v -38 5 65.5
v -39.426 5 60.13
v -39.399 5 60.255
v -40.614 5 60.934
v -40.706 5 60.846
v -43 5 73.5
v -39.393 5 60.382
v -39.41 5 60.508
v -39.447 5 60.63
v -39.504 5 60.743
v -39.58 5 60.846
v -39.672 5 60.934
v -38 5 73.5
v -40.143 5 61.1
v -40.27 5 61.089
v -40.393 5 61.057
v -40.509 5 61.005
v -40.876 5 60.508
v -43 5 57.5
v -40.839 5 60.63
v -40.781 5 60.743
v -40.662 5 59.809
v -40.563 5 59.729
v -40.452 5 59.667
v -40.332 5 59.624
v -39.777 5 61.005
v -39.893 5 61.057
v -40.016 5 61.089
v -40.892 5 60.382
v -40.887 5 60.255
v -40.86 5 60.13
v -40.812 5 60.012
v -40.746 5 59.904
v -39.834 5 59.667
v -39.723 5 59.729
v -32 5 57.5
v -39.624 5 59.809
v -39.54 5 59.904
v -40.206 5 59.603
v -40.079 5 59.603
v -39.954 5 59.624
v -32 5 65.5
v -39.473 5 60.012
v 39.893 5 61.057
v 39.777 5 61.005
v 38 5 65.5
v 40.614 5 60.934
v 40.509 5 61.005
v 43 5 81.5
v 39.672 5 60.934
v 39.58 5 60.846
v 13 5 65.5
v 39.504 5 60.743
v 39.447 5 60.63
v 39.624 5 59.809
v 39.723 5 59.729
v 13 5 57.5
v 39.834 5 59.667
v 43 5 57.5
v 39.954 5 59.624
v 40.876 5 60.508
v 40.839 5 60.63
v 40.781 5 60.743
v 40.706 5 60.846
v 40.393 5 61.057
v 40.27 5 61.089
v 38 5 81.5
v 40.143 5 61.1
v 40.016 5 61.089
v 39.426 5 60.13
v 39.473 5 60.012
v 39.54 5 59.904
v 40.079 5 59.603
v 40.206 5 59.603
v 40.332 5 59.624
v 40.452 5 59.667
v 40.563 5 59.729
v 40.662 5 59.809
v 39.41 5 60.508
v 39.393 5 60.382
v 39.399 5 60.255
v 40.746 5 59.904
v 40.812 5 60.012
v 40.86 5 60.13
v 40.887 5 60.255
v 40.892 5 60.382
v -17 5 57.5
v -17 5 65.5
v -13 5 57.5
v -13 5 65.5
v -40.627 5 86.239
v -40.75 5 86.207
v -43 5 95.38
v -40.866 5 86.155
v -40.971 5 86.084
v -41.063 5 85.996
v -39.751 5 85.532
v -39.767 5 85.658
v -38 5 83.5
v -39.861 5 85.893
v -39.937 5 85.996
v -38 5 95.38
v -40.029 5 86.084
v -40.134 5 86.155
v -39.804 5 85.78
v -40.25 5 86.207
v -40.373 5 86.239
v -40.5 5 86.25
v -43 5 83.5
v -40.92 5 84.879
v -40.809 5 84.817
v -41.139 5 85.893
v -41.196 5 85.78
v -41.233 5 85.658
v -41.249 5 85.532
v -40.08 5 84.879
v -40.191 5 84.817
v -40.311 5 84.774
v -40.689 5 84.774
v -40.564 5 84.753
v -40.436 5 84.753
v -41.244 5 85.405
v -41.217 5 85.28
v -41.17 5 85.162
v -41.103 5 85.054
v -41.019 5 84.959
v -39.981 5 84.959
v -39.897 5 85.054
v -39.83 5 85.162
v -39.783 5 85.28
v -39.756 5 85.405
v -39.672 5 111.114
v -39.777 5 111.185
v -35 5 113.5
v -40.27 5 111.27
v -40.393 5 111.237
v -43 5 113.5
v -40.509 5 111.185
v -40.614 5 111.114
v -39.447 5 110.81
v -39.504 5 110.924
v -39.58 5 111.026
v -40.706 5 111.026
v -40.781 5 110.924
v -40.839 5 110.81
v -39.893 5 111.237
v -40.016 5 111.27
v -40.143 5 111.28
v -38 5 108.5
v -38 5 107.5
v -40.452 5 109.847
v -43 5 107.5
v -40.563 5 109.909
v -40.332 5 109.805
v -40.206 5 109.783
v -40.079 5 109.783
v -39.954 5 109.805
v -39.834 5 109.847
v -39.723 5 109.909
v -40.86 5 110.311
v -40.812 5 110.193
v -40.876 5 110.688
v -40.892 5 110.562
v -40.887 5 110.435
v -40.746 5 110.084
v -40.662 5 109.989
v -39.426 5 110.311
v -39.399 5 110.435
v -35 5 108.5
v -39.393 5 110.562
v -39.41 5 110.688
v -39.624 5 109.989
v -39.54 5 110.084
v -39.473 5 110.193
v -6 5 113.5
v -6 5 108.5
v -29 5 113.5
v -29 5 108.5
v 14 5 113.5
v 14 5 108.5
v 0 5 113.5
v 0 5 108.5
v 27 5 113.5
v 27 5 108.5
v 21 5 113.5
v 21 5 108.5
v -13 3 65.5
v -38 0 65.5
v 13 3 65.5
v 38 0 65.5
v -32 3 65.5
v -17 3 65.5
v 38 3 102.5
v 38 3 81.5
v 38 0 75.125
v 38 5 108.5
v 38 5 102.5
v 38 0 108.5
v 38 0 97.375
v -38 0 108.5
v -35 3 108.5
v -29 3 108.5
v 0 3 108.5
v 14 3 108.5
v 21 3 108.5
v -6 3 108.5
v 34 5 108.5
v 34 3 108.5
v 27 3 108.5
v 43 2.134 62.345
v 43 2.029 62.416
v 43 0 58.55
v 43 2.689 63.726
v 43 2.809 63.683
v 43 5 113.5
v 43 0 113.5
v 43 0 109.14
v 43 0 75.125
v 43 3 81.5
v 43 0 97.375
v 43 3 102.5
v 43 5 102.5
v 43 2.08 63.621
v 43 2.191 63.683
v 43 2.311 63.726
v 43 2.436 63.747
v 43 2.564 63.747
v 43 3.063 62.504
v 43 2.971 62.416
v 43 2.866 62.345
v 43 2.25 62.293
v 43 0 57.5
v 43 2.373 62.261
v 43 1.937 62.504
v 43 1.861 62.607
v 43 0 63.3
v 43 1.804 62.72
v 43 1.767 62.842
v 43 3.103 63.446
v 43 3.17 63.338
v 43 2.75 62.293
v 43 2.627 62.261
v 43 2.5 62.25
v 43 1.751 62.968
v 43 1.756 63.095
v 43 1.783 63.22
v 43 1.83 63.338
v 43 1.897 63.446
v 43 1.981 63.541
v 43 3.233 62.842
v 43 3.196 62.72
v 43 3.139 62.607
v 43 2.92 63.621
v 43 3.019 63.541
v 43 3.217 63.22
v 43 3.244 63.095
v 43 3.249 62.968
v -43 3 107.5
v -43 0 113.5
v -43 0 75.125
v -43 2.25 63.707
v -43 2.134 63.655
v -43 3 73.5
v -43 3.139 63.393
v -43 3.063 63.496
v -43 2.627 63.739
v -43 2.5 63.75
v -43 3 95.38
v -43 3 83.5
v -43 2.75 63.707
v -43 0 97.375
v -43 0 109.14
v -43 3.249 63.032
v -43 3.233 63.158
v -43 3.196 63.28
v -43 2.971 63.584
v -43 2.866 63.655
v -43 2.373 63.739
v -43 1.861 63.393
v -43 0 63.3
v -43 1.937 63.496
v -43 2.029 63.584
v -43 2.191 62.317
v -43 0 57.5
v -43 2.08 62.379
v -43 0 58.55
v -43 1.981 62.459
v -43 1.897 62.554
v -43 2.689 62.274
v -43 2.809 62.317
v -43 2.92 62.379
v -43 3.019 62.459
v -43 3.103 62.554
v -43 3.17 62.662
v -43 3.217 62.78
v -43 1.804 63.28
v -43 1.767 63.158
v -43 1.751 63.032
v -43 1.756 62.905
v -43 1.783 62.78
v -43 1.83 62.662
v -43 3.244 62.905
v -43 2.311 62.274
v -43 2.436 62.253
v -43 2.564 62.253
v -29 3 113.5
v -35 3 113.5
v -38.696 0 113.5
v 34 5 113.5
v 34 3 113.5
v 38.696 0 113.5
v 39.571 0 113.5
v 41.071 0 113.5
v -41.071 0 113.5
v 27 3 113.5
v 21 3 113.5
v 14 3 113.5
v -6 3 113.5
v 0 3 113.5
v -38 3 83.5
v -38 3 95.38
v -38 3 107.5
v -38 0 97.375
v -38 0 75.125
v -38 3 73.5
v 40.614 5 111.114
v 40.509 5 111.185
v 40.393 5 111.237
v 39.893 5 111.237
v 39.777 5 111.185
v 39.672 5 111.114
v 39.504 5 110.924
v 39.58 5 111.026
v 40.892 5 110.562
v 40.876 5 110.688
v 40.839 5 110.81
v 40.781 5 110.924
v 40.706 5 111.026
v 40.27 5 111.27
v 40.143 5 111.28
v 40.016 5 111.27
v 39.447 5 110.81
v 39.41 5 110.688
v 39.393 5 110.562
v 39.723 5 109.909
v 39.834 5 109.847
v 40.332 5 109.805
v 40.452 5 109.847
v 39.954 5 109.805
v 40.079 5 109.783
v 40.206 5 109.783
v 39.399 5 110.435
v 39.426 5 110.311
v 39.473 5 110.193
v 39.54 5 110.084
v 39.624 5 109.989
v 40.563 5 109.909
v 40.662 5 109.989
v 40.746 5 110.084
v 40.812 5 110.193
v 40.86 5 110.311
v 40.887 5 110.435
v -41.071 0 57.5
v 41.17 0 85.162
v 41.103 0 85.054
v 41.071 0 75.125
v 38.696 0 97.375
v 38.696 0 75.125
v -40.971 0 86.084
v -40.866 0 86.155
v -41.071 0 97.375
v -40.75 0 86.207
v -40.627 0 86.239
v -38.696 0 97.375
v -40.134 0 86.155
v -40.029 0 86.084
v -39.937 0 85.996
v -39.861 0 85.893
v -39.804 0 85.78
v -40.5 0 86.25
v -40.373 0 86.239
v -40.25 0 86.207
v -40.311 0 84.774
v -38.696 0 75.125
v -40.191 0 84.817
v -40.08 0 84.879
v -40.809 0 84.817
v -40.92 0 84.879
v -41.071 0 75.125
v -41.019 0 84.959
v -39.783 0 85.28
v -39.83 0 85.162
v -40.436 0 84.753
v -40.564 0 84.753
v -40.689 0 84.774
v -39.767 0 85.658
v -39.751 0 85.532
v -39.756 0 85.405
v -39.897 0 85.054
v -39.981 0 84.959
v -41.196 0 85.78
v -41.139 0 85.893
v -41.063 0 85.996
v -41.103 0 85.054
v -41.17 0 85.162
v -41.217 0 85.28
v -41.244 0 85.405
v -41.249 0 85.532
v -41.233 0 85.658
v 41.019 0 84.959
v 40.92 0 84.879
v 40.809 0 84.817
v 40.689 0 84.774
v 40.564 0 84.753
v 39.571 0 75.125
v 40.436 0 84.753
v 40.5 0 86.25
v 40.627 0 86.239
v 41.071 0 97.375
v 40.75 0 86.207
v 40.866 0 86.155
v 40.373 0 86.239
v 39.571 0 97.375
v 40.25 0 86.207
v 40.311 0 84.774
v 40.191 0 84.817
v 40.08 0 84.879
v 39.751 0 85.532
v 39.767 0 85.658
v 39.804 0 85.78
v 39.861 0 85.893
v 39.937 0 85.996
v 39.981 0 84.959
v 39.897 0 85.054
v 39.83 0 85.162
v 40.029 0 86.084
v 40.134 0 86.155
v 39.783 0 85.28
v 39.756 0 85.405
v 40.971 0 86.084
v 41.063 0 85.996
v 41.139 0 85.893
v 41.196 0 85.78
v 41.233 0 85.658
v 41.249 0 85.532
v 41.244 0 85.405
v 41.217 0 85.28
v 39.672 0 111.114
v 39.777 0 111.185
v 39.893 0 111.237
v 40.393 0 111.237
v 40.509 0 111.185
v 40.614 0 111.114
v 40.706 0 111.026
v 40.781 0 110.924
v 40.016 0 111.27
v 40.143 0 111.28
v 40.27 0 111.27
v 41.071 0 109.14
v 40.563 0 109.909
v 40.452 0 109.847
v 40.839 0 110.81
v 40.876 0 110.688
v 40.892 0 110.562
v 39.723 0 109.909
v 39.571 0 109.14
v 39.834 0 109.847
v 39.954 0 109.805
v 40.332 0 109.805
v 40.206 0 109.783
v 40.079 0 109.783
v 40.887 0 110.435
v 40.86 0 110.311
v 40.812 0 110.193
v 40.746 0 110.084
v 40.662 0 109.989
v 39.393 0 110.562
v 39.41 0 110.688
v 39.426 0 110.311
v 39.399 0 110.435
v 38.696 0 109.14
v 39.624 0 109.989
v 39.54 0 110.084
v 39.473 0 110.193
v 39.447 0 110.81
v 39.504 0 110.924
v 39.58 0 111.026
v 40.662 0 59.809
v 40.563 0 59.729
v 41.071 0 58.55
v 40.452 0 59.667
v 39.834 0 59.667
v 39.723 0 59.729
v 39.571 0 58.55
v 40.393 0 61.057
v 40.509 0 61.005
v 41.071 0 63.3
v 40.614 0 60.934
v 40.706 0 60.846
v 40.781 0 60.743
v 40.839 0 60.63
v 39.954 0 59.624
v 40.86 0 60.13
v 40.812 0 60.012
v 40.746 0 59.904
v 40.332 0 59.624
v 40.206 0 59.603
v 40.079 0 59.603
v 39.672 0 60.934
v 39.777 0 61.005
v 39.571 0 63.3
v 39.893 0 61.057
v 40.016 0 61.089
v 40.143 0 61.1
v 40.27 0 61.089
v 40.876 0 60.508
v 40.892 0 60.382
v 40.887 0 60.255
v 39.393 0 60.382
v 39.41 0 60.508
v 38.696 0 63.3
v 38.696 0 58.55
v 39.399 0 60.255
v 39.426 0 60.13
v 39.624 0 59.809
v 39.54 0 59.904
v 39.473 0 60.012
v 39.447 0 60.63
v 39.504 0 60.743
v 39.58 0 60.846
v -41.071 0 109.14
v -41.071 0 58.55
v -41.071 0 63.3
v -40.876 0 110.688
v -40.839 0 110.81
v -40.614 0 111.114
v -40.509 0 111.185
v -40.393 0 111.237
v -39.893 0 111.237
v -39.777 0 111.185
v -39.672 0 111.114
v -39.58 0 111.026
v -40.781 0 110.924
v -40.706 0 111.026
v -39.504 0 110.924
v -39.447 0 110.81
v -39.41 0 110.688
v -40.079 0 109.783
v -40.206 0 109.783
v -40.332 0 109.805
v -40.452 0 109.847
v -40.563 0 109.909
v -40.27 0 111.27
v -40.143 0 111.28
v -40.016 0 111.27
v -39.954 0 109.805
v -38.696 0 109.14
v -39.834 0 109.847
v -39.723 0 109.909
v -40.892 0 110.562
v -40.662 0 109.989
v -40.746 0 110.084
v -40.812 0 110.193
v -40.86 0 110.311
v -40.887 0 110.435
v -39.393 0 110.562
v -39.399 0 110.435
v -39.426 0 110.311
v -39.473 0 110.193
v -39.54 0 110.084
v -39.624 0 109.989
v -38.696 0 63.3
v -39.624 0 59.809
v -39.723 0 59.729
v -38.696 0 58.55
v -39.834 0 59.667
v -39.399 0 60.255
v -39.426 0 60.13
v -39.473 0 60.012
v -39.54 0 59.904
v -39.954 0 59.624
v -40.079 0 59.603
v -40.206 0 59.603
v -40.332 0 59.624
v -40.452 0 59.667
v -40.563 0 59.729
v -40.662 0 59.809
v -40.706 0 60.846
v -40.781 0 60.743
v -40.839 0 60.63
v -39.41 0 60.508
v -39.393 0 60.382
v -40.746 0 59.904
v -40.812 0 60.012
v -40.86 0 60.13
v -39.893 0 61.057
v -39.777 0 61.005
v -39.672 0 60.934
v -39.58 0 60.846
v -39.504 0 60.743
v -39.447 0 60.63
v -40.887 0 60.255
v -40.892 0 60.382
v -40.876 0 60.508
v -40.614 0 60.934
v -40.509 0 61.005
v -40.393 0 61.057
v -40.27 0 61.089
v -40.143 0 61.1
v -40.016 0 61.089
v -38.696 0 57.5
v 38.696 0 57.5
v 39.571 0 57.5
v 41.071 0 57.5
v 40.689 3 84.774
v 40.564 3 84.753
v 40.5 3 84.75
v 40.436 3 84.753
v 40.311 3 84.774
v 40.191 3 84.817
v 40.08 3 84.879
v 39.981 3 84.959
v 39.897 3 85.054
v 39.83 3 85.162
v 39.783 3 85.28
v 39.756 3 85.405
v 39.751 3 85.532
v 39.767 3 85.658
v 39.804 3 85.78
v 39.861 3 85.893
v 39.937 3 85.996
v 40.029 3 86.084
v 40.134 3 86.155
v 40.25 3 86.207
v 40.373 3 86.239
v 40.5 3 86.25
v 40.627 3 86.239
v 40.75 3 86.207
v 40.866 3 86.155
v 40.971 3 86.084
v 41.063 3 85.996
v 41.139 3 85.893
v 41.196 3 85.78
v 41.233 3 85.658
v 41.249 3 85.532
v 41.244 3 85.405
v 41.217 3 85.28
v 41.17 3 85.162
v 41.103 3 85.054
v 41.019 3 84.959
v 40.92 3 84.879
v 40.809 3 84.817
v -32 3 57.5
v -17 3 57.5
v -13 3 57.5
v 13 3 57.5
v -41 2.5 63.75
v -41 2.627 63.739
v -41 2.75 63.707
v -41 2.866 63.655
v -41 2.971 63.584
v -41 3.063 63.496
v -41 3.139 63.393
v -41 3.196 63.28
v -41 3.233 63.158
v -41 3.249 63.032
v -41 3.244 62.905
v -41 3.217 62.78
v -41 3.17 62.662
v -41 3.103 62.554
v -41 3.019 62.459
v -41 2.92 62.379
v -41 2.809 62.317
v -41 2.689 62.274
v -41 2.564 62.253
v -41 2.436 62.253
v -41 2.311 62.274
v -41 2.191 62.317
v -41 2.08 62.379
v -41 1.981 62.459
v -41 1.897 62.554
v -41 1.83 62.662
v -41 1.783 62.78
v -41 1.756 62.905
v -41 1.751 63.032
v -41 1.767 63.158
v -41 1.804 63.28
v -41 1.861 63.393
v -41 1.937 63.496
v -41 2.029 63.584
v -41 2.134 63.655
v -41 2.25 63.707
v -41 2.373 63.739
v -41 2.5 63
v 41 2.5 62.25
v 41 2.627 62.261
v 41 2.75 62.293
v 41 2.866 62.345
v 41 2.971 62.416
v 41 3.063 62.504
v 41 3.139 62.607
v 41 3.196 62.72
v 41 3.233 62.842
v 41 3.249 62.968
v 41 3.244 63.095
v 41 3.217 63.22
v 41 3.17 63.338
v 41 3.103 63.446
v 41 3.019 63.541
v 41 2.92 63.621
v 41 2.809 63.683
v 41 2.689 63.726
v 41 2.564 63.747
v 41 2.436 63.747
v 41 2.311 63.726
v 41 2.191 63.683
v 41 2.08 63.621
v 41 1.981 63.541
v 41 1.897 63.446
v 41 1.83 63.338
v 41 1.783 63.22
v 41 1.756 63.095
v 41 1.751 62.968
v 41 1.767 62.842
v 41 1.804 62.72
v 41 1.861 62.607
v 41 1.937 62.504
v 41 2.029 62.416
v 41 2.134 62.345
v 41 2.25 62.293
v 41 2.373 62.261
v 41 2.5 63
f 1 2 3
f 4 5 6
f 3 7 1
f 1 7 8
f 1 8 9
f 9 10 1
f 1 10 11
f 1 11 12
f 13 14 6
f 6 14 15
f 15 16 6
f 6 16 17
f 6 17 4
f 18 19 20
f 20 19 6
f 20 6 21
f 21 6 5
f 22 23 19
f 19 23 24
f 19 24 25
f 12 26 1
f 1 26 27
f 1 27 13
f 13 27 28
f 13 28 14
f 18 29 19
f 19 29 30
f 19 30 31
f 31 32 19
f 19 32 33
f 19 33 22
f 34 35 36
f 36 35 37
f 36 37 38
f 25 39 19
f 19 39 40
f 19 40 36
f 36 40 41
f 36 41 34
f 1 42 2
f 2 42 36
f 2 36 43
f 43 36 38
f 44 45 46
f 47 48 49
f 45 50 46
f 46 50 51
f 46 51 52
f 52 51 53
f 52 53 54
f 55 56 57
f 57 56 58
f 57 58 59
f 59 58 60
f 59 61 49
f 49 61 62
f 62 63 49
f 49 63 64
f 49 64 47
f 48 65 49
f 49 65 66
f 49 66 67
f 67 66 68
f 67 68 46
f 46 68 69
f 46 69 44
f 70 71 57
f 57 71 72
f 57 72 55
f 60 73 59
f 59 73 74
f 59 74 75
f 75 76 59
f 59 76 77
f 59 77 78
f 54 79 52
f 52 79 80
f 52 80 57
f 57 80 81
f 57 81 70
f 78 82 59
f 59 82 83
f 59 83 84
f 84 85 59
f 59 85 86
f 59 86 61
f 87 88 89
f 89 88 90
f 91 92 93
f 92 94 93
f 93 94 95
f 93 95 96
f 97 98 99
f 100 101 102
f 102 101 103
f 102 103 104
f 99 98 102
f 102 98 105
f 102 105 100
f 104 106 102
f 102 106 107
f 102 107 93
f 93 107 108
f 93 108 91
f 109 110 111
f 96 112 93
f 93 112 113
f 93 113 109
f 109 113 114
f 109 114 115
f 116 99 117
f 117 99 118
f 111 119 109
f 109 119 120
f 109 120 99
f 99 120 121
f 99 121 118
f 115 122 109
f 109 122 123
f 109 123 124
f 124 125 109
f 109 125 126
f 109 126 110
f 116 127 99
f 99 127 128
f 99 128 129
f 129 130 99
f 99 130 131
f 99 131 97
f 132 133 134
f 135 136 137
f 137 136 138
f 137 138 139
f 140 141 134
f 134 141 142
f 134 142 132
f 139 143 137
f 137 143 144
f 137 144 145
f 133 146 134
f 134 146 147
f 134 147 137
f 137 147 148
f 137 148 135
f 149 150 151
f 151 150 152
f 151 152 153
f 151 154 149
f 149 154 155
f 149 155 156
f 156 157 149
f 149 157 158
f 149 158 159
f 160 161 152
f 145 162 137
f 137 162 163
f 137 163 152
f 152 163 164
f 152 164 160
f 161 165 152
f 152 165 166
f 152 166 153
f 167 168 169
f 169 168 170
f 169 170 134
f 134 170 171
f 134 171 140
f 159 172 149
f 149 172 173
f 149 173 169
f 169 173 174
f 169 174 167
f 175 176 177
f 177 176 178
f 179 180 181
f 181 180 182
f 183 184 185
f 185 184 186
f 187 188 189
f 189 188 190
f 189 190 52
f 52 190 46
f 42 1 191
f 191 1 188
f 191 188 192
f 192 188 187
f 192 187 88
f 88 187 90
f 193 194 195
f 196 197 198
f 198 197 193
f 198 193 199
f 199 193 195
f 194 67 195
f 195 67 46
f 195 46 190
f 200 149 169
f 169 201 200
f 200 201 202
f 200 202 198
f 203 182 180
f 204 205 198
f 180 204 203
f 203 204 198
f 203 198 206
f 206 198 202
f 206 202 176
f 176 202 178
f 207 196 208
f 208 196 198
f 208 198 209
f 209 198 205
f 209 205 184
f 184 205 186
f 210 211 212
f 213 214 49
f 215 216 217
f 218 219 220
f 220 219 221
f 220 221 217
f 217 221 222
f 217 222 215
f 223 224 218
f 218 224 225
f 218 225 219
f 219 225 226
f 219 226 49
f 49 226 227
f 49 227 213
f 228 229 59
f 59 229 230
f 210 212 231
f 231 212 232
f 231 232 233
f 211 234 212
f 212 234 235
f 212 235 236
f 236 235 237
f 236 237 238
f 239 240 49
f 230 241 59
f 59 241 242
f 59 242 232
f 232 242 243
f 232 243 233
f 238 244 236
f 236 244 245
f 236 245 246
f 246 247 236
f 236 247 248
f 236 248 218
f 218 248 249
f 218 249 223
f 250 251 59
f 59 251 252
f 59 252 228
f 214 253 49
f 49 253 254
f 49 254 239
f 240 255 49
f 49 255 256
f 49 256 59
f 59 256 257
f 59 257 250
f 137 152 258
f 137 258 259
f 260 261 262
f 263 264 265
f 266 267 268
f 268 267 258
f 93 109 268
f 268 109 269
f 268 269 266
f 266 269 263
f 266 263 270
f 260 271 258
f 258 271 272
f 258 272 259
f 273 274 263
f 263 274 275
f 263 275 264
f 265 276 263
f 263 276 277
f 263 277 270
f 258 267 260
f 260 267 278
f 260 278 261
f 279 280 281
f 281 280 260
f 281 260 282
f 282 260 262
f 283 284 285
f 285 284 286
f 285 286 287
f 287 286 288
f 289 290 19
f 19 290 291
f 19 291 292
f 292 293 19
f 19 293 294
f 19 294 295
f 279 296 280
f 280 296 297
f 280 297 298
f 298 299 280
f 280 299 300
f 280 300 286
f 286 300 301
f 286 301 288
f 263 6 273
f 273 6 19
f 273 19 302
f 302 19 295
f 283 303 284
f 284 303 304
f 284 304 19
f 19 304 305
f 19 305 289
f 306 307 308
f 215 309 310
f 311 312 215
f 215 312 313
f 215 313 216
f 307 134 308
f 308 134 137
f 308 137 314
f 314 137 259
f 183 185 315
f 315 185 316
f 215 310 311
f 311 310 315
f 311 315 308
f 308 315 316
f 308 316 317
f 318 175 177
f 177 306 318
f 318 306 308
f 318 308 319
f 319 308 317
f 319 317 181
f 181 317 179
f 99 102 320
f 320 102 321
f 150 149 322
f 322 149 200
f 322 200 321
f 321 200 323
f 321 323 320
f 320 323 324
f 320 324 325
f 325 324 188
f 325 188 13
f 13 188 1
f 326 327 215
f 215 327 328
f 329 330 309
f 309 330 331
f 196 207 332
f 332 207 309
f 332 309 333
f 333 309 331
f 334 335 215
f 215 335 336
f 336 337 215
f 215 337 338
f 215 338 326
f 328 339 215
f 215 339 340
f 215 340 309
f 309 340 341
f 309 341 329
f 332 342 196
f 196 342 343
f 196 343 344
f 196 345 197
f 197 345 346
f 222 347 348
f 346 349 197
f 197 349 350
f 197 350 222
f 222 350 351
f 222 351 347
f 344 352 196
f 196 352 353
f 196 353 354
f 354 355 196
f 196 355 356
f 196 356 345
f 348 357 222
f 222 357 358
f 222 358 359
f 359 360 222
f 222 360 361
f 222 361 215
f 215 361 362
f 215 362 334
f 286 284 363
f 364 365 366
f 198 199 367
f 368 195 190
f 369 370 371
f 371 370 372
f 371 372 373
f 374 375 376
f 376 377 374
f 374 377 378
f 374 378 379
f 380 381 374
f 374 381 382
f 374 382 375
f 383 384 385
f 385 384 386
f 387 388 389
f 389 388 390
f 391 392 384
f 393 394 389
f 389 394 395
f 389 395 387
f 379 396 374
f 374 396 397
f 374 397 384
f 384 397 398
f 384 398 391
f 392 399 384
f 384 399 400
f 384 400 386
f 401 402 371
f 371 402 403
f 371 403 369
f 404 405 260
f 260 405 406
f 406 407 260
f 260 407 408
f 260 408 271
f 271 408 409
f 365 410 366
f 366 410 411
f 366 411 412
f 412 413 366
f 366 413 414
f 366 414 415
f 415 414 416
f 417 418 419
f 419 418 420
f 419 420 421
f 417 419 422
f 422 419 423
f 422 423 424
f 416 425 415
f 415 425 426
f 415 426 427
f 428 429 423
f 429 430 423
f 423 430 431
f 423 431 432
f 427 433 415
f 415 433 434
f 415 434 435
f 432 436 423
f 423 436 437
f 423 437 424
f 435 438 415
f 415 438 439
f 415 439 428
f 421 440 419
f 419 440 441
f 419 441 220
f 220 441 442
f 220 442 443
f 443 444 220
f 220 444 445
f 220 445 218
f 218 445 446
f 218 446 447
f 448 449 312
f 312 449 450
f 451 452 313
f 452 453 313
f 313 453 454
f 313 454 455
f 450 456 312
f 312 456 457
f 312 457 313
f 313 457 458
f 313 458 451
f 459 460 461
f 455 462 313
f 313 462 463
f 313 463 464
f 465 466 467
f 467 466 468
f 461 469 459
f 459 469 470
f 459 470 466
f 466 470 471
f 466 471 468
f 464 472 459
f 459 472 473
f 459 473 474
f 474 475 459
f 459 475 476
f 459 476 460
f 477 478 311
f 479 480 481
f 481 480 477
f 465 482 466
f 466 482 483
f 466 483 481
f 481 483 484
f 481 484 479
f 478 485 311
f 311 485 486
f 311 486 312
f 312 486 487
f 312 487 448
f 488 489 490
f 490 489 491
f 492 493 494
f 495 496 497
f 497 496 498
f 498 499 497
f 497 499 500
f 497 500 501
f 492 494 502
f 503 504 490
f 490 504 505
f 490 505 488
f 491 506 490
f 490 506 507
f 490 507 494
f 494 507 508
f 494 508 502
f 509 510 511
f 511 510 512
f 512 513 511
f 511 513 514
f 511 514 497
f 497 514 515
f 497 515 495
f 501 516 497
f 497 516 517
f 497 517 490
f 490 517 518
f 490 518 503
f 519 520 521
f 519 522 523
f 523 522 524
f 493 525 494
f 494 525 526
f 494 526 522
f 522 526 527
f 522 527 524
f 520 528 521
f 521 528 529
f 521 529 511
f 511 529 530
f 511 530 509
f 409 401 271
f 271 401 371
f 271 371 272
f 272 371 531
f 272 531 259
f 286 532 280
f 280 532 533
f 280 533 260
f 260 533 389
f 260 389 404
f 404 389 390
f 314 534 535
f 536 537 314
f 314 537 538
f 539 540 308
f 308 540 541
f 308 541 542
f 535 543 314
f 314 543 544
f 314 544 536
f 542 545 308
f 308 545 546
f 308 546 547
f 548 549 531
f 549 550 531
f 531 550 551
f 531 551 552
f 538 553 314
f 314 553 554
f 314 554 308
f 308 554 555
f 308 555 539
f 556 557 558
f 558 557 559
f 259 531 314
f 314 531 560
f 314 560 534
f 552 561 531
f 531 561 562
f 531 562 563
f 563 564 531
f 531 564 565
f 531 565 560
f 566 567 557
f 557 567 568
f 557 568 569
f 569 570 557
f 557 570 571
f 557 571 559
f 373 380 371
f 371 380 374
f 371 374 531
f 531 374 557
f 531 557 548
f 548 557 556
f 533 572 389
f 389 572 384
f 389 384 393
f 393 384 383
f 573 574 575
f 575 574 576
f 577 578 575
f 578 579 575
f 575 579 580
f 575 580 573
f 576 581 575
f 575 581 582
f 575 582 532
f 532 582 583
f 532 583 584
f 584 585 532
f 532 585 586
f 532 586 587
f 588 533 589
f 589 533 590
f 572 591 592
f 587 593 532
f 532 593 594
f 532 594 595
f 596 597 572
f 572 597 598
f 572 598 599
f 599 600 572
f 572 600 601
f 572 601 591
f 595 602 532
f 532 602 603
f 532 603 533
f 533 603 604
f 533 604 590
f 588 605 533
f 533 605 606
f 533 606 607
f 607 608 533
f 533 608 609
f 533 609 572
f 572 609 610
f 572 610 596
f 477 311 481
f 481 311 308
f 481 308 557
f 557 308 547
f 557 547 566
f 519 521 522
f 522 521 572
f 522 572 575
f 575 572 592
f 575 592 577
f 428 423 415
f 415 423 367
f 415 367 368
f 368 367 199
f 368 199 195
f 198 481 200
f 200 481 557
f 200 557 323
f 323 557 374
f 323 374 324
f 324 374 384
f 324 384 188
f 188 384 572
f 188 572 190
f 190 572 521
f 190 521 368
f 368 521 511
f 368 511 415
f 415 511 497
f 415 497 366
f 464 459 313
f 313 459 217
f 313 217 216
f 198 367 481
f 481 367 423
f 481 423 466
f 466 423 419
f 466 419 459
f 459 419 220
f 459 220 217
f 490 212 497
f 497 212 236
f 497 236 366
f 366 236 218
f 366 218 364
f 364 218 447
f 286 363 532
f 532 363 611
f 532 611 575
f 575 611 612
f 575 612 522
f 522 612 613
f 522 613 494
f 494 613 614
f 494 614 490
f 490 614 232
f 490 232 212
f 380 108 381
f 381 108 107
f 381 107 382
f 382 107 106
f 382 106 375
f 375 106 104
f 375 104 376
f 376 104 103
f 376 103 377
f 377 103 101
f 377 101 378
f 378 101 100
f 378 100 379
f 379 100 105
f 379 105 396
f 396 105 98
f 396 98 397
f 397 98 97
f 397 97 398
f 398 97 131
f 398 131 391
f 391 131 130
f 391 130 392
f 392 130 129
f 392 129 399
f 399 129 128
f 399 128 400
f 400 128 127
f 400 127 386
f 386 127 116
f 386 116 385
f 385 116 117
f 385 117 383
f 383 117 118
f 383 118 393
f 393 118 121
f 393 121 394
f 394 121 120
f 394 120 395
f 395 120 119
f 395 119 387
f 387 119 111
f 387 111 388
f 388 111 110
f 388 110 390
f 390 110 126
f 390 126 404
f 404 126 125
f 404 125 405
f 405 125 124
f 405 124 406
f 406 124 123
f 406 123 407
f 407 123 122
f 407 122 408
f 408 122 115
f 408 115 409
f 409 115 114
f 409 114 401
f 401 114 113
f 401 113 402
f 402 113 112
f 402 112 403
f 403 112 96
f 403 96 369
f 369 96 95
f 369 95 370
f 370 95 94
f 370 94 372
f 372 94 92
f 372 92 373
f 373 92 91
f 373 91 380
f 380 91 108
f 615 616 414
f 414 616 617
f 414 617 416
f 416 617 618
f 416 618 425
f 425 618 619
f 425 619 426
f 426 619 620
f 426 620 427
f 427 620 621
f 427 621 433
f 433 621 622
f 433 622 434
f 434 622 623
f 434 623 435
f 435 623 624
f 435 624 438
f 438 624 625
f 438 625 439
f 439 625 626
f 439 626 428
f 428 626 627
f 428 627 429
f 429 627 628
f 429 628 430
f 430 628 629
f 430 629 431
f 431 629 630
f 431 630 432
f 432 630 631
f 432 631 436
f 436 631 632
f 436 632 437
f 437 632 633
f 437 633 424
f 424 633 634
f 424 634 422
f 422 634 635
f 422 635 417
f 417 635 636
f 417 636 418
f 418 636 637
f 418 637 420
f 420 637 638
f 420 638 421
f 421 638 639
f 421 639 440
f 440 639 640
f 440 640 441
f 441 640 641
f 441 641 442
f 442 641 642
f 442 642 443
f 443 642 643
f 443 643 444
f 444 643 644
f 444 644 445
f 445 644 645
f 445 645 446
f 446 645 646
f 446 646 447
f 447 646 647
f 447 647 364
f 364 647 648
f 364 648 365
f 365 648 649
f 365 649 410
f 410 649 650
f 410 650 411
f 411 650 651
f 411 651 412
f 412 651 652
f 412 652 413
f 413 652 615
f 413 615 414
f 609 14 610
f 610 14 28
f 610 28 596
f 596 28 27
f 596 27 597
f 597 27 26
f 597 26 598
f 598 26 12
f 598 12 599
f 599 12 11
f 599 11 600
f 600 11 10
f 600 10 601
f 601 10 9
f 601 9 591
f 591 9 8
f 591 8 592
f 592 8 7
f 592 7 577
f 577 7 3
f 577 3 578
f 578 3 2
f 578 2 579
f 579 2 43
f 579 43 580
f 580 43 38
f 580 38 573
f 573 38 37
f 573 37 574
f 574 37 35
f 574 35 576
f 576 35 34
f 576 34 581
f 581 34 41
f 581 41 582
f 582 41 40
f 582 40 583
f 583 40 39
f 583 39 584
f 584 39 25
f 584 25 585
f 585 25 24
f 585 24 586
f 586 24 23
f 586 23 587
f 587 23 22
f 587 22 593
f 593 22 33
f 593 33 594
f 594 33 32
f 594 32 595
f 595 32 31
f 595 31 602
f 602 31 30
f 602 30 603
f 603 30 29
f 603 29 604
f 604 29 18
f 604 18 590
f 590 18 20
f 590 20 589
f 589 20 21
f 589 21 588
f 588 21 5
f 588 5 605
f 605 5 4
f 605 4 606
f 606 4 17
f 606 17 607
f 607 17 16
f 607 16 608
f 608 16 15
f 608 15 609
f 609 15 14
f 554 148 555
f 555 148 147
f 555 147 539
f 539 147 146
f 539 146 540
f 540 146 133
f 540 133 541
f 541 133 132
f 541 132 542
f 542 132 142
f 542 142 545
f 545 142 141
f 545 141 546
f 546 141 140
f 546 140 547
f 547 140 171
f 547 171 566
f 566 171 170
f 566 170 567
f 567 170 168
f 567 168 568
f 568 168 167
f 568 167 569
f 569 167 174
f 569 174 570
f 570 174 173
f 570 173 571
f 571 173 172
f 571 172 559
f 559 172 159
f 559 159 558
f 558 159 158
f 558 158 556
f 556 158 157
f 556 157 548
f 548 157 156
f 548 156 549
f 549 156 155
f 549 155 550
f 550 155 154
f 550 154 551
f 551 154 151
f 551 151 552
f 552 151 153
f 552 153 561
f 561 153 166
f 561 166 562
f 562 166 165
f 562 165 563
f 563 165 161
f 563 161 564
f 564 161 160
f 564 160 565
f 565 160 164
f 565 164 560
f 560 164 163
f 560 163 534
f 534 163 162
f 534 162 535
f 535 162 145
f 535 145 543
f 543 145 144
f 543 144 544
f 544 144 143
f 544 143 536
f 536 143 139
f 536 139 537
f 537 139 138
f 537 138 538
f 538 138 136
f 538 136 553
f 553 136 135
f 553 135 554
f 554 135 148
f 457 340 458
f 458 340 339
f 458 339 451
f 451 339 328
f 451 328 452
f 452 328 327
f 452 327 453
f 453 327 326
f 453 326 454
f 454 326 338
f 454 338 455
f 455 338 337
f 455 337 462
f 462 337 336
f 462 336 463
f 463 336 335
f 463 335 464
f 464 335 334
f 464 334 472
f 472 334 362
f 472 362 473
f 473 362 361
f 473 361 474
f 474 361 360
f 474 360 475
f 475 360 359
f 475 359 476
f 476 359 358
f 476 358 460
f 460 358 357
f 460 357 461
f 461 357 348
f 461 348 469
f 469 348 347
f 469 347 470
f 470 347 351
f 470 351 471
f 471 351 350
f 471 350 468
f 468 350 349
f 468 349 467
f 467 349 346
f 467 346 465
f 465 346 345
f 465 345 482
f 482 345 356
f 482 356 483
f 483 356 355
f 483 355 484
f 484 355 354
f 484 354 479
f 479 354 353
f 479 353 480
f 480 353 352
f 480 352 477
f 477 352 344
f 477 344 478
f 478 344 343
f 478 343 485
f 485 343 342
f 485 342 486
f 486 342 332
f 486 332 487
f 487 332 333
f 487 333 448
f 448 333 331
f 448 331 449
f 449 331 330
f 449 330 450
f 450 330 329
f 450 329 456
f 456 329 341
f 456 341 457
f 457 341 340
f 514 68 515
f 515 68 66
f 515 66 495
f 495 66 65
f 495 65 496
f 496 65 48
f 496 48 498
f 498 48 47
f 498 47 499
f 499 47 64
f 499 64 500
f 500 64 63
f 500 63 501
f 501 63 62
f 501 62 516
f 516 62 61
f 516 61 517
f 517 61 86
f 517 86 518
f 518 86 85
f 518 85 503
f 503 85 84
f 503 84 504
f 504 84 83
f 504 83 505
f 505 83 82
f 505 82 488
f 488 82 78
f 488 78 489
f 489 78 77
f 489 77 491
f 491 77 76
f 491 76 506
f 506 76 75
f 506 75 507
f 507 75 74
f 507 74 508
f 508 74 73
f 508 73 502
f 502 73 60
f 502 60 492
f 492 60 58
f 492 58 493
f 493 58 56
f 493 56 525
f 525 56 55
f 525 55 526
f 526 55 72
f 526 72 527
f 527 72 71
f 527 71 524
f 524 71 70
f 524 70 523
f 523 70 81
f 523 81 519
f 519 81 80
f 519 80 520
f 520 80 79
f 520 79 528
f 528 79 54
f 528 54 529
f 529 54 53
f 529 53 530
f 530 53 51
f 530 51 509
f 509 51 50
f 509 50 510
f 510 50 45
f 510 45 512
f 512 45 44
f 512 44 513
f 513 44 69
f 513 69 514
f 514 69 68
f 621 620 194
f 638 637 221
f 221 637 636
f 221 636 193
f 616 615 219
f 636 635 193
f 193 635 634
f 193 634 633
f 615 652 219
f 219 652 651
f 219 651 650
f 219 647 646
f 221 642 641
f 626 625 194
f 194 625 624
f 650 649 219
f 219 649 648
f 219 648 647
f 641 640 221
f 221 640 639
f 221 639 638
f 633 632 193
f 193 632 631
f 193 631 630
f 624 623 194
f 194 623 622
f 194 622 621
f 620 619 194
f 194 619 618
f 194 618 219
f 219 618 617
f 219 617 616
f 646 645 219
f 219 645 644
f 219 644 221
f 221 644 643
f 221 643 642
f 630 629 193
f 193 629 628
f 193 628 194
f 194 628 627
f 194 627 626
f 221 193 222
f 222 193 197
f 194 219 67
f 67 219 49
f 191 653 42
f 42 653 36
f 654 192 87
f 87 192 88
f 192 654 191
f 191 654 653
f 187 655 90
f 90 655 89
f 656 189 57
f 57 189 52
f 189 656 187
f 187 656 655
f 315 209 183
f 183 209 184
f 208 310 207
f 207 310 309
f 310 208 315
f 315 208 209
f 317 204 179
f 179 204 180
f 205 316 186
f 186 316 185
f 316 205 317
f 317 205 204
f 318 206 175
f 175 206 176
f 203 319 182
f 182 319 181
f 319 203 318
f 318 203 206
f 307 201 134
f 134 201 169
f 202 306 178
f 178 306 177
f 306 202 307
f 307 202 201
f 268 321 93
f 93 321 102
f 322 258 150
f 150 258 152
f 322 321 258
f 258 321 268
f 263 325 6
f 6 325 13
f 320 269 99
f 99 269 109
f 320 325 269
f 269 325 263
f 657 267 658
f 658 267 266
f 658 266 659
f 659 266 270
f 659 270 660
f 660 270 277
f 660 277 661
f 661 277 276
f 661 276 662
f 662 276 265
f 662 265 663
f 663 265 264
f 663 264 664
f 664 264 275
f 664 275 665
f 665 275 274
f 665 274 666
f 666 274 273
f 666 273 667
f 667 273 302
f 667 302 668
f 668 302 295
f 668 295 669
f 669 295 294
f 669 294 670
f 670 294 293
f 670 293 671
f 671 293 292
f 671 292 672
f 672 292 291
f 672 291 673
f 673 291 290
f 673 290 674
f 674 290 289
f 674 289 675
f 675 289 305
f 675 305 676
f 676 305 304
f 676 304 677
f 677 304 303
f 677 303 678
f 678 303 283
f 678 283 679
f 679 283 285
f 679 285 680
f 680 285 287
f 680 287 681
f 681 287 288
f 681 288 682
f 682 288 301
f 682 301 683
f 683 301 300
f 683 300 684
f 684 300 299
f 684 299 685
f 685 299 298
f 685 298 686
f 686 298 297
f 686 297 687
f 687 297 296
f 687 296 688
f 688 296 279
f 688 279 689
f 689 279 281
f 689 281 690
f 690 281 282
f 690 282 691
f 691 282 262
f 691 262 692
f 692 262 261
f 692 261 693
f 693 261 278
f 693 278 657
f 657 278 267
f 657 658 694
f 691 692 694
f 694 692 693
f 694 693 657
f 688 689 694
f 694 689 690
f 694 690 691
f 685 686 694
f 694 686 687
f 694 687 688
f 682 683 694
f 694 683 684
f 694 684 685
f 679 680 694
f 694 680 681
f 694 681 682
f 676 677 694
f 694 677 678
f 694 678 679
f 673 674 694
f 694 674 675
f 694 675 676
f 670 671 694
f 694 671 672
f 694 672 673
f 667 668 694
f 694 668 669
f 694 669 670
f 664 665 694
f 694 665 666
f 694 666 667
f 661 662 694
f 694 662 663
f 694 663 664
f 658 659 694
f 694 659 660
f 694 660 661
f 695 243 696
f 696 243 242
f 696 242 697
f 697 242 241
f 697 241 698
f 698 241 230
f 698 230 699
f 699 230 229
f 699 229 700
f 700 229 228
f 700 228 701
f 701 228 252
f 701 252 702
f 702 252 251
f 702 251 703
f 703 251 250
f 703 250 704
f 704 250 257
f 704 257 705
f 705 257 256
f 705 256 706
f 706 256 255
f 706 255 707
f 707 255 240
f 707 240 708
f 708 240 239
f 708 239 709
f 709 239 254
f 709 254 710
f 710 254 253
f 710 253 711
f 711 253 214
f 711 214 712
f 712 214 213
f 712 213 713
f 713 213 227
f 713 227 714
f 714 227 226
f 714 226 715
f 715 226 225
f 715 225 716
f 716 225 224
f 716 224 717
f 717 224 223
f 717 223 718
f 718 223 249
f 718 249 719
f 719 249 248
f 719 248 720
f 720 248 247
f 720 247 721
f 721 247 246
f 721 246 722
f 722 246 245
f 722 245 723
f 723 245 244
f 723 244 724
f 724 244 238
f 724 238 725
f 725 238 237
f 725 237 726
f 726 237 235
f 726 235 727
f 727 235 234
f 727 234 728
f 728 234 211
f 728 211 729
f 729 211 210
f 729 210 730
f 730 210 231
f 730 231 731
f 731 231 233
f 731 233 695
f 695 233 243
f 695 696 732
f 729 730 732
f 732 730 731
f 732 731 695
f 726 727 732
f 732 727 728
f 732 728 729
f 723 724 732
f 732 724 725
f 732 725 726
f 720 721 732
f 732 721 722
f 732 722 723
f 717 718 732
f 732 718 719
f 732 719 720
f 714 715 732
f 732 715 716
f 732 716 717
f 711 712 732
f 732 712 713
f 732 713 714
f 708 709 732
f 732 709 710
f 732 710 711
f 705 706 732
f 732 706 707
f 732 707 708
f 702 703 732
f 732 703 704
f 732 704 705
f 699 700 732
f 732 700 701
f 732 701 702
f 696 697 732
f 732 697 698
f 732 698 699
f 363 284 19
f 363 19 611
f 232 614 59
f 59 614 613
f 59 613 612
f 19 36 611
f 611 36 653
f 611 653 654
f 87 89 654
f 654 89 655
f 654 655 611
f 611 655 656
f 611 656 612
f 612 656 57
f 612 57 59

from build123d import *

# Parameters (mm, degrees)
SKETCH_1_W          = 86
SKETCH_1_H          = 174
SKETCH_1_W_2        = 50
SKETCH_1_H_2        = 25
SKETCH_1_H_3        = 55
SKETCH_1_W_3        = 76
SKETCH_1_H_4        = 43
EXTRUDE_1_DEPTH     = 5
SKETCH_4_W          = 68.7
SKETCH_4_H          = 115
SKETCH_4_W_2        = 64.7
SKETCH_4_H_2        = 37
SKETCH_4_H_3        = 70
EXTRUDE_2_DEPTH     = 10
SKETCH_5_R          = 0.75
CUT_EXTRUDE_1_DEPTH = 122.783619588
SKETCH_7_W          = 15
SKETCH_7_H          = 8
SKETCH_7_W_2        = 26
SKETCH_7_W_3        = 5
SKETCH_7_H_2        = 10
SKETCH_7_H_3        = 12.119700025
SKETCH_7_W_4        = 6
SKETCH_7_H_4        = 5
SKETCH_7_W_5        = 7
SKETCH_7_H_5        = 21
CUT_EXTRUDE_2_DEPTH = 2
SKETCH_8_R          = 0.75
CUT_EXTRUDE_3_DEPTH = 2
CUT_EXTRUDE_START   = -84
SKETCH_8_3_R        = 0.75
CUT_EXTRUDE_4_DEPTH = 2
SKETCH_9_W          = 86
SKETCH_9_H          = 118
SKETCH_9_R          = 0.75
SKETCH_9_W_2        = 50
SKETCH_9_H_2        = 55
SKETCH_9_H_3        = 25
CUT_EXTRUDE_5_DEPTH = 123.295748086


with BuildPart() as part:
    # 草图1 → 凸台-拉伸1 (new body)
    with BuildSketch(Plane(origin=(0, 0, 0), x_dir=(1, 0, 0), z_dir=(0, 1, 0))):
        with Locations((0, -26.5)):
            Rectangle(SKETCH_1_W, SKETCH_1_H)
        with Locations((0, -38)):
            Rectangle(SKETCH_1_W_2, SKETCH_1_H_2, mode=Mode.SUBTRACT)
        with Locations((0, 23)):
            Rectangle(SKETCH_1_W_2, SKETCH_1_H_3, mode=Mode.SUBTRACT)
        with Locations((0, -87)):
            Rectangle(SKETCH_1_W_3, SKETCH_1_H_4, mode=Mode.SUBTRACT)
    extrude(amount=EXTRUDE_1_DEPTH)

    # 草图4 → 凸台-拉伸2 (add)
    with BuildSketch(Plane(origin=(0, 5, 0), x_dir=(1, 0, 0), z_dir=(0, 1, 0))):
        Rectangle(SKETCH_4_W, SKETCH_4_H)
        with Locations((0, -37)):
            Rectangle(SKETCH_4_W_2, SKETCH_4_H_2, mode=Mode.SUBTRACT)
        with Locations((0, 20.5)):
            Rectangle(SKETCH_4_W_2, SKETCH_4_H_3, mode=Mode.SUBTRACT)
    extrude(amount=EXTRUDE_2_DEPTH)

    # 草图5 → 切除-拉伸1 (cut, through all)
    with BuildSketch(Plane(origin=(0, 5, 0), x_dir=(1, 0, 0), z_dir=(0, 1, 0))):
        with Locations(Location((-39, 20.5, 0), (0, 0, 270))):
            Circle(SKETCH_5_R)
        with Locations(Location((39, 20.5, 0), (0, 0, 270))):
            Circle(SKETCH_5_R)
        with Locations(Location((-39, -32.5, 0), (0, 0, 270))):
            Circle(SKETCH_5_R)
        with Locations(Location((39, -32.5, 0), (0, 0, 270))):
            Circle(SKETCH_5_R)
        with Locations(Location((-40.1427775, -60.35, 0), (0, 0, 270))):
            Circle(SKETCH_5_R)
        with Locations(Location((40.1427775, -60.35, 0), (0, 0, 270))):
            Circle(SKETCH_5_R)
        with Locations(Location((-40.1427775, -110.530299975, 0), (0, 0, 270))):
            Circle(SKETCH_5_R)
        with Locations(Location((40.1427775, -110.530299975, 0), (0, 0, 270))):
            Circle(SKETCH_5_R)
        with Locations(Location((-40.5, 57.5, 0), (0, 0, 270))):
            Circle(SKETCH_5_R)
        with Locations(Location((-40.5, -38, 0), (0, 0, 270))):
            Circle(SKETCH_5_R)
        with Locations(Location((-40.5, -85.5, 0), (0, 0, 270))):
            Circle(SKETCH_5_R)
        with Locations(Location((40.5, 57.5, 0), (0, 0, 270))):
            Circle(SKETCH_5_R)
        with Locations(Location((40.5, -38, 0), (0, 0, 270))):
            Circle(SKETCH_5_R)
        with Locations(Location((40.5, -85.5, 0), (0, 0, 270))):
            Circle(SKETCH_5_R)
        with Locations(Location((-40.5, -4.5, 0), (0, 0, 270))):
            Circle(SKETCH_5_R)
        with Locations(Location((40.5, -4.5, 0), (0, 0, 270))):
            Circle(SKETCH_5_R)
    extrude(amount=-CUT_EXTRUDE_1_DEPTH, mode=Mode.SUBTRACT)

    # 草图7 → 切除-拉伸2 (cut)
    with BuildSketch(Plane(origin=(0, 5, 0), x_dir=(1, 0, 0), z_dir=(0, 1, 0))):
        with Locations((-24.5, -61.5)):
            Rectangle(SKETCH_7_W, SKETCH_7_H)
        with Locations((0, -61.5)):
            Rectangle(SKETCH_7_W_2, SKETCH_7_H)
        with Locations((-40.5, -78.5)):
            Rectangle(SKETCH_7_W_3, SKETCH_7_H_2)
        with Locations((-40.5, -101.440149988)):
            Rectangle(SKETCH_7_W_3, SKETCH_7_H_3)
        with Locations((-32, -111)):
            Rectangle(SKETCH_7_W_4, SKETCH_7_H_4)
        with Locations((-3, -111)):
            Rectangle(SKETCH_7_W_4, SKETCH_7_H_4)
        with Locations((17.5, -111)):
            Rectangle(SKETCH_7_W_5, SKETCH_7_H_4)
        with Locations((30.5, -111)):
            Rectangle(SKETCH_7_W_5, SKETCH_7_H_4)
        with Locations((40.5, -92)):
            Rectangle(SKETCH_7_W_3, SKETCH_7_H_5)
    extrude(amount=-CUT_EXTRUDE_2_DEPTH, mode=Mode.SUBTRACT)

    # 草图8 → 切除-拉伸3 (cut)
    with BuildSketch(Plane.ZY.offset(43)):
        with Locations((8, 2.5)):
            Circle(SKETCH_8_R)
        with Locations((23, 2.5)):
            Circle(SKETCH_8_R)
        with Locations((52, 2.5)):
            Circle(SKETCH_8_R)
        with Locations((63, 2.5)):
            Circle(SKETCH_8_R)
    extrude(amount=-CUT_EXTRUDE_3_DEPTH, mode=Mode.SUBTRACT)

    # 草图8<3> → 切除-拉伸4 (cut)
    with BuildSketch(Plane.ZY.offset(43).offset(CUT_EXTRUDE_START)):
        with Locations((8, 2.5)):
            Circle(SKETCH_8_3_R)
        with Locations((23, 2.5)):
            Circle(SKETCH_8_3_R)
        with Locations((52, 2.5)):
            Circle(SKETCH_8_3_R)
        with Locations((63, 2.5)):
            Circle(SKETCH_8_3_R)
    extrude(amount=-CUT_EXTRUDE_4_DEPTH, mode=Mode.SUBTRACT)

    # 草图9 → 切除-拉伸5 (cut, through all)
    with BuildSketch(Plane(origin=(0, 0, 0), x_dir=(1, 0, 0), z_dir=(0, 1, 0))):
        with Locations((0, 1.5)):
            Rectangle(SKETCH_9_W, SKETCH_9_H)
        with Locations((-40.5, -4.5)):
            Circle(SKETCH_9_R, mode=Mode.SUBTRACT)
        with Locations((-39, 20.5)):
            Circle(SKETCH_9_R, mode=Mode.SUBTRACT)
        with Locations((-40.5, 57.5)):
            Circle(SKETCH_9_R, mode=Mode.SUBTRACT)
        with Locations((0, 23)):
            Rectangle(SKETCH_9_W_2, SKETCH_9_H_2, mode=Mode.SUBTRACT)
        with Locations((40.5, -4.5)):
            Circle(SKETCH_9_R, mode=Mode.SUBTRACT)
        with Locations((39, 20.5)):
            Circle(SKETCH_9_R, mode=Mode.SUBTRACT)
        with Locations((40.5, 57.5)):
            Circle(SKETCH_9_R, mode=Mode.SUBTRACT)
        with Locations((39, -32.5)):
            Circle(SKETCH_9_R, mode=Mode.SUBTRACT)
        with Locations((-40.5, -38)):
            Circle(SKETCH_9_R, mode=Mode.SUBTRACT)
        with Locations((-39, -32.5)):
            Circle(SKETCH_9_R, mode=Mode.SUBTRACT)
        with Locations((0, -38)):
            Rectangle(SKETCH_9_W_2, SKETCH_9_H_3, mode=Mode.SUBTRACT)
        with Locations((40.5, -38)):
            Circle(SKETCH_9_R, mode=Mode.SUBTRACT)
    extrude(amount=CUT_EXTRUDE_5_DEPTH, mode=Mode.SUBTRACT)


solid = part.part
